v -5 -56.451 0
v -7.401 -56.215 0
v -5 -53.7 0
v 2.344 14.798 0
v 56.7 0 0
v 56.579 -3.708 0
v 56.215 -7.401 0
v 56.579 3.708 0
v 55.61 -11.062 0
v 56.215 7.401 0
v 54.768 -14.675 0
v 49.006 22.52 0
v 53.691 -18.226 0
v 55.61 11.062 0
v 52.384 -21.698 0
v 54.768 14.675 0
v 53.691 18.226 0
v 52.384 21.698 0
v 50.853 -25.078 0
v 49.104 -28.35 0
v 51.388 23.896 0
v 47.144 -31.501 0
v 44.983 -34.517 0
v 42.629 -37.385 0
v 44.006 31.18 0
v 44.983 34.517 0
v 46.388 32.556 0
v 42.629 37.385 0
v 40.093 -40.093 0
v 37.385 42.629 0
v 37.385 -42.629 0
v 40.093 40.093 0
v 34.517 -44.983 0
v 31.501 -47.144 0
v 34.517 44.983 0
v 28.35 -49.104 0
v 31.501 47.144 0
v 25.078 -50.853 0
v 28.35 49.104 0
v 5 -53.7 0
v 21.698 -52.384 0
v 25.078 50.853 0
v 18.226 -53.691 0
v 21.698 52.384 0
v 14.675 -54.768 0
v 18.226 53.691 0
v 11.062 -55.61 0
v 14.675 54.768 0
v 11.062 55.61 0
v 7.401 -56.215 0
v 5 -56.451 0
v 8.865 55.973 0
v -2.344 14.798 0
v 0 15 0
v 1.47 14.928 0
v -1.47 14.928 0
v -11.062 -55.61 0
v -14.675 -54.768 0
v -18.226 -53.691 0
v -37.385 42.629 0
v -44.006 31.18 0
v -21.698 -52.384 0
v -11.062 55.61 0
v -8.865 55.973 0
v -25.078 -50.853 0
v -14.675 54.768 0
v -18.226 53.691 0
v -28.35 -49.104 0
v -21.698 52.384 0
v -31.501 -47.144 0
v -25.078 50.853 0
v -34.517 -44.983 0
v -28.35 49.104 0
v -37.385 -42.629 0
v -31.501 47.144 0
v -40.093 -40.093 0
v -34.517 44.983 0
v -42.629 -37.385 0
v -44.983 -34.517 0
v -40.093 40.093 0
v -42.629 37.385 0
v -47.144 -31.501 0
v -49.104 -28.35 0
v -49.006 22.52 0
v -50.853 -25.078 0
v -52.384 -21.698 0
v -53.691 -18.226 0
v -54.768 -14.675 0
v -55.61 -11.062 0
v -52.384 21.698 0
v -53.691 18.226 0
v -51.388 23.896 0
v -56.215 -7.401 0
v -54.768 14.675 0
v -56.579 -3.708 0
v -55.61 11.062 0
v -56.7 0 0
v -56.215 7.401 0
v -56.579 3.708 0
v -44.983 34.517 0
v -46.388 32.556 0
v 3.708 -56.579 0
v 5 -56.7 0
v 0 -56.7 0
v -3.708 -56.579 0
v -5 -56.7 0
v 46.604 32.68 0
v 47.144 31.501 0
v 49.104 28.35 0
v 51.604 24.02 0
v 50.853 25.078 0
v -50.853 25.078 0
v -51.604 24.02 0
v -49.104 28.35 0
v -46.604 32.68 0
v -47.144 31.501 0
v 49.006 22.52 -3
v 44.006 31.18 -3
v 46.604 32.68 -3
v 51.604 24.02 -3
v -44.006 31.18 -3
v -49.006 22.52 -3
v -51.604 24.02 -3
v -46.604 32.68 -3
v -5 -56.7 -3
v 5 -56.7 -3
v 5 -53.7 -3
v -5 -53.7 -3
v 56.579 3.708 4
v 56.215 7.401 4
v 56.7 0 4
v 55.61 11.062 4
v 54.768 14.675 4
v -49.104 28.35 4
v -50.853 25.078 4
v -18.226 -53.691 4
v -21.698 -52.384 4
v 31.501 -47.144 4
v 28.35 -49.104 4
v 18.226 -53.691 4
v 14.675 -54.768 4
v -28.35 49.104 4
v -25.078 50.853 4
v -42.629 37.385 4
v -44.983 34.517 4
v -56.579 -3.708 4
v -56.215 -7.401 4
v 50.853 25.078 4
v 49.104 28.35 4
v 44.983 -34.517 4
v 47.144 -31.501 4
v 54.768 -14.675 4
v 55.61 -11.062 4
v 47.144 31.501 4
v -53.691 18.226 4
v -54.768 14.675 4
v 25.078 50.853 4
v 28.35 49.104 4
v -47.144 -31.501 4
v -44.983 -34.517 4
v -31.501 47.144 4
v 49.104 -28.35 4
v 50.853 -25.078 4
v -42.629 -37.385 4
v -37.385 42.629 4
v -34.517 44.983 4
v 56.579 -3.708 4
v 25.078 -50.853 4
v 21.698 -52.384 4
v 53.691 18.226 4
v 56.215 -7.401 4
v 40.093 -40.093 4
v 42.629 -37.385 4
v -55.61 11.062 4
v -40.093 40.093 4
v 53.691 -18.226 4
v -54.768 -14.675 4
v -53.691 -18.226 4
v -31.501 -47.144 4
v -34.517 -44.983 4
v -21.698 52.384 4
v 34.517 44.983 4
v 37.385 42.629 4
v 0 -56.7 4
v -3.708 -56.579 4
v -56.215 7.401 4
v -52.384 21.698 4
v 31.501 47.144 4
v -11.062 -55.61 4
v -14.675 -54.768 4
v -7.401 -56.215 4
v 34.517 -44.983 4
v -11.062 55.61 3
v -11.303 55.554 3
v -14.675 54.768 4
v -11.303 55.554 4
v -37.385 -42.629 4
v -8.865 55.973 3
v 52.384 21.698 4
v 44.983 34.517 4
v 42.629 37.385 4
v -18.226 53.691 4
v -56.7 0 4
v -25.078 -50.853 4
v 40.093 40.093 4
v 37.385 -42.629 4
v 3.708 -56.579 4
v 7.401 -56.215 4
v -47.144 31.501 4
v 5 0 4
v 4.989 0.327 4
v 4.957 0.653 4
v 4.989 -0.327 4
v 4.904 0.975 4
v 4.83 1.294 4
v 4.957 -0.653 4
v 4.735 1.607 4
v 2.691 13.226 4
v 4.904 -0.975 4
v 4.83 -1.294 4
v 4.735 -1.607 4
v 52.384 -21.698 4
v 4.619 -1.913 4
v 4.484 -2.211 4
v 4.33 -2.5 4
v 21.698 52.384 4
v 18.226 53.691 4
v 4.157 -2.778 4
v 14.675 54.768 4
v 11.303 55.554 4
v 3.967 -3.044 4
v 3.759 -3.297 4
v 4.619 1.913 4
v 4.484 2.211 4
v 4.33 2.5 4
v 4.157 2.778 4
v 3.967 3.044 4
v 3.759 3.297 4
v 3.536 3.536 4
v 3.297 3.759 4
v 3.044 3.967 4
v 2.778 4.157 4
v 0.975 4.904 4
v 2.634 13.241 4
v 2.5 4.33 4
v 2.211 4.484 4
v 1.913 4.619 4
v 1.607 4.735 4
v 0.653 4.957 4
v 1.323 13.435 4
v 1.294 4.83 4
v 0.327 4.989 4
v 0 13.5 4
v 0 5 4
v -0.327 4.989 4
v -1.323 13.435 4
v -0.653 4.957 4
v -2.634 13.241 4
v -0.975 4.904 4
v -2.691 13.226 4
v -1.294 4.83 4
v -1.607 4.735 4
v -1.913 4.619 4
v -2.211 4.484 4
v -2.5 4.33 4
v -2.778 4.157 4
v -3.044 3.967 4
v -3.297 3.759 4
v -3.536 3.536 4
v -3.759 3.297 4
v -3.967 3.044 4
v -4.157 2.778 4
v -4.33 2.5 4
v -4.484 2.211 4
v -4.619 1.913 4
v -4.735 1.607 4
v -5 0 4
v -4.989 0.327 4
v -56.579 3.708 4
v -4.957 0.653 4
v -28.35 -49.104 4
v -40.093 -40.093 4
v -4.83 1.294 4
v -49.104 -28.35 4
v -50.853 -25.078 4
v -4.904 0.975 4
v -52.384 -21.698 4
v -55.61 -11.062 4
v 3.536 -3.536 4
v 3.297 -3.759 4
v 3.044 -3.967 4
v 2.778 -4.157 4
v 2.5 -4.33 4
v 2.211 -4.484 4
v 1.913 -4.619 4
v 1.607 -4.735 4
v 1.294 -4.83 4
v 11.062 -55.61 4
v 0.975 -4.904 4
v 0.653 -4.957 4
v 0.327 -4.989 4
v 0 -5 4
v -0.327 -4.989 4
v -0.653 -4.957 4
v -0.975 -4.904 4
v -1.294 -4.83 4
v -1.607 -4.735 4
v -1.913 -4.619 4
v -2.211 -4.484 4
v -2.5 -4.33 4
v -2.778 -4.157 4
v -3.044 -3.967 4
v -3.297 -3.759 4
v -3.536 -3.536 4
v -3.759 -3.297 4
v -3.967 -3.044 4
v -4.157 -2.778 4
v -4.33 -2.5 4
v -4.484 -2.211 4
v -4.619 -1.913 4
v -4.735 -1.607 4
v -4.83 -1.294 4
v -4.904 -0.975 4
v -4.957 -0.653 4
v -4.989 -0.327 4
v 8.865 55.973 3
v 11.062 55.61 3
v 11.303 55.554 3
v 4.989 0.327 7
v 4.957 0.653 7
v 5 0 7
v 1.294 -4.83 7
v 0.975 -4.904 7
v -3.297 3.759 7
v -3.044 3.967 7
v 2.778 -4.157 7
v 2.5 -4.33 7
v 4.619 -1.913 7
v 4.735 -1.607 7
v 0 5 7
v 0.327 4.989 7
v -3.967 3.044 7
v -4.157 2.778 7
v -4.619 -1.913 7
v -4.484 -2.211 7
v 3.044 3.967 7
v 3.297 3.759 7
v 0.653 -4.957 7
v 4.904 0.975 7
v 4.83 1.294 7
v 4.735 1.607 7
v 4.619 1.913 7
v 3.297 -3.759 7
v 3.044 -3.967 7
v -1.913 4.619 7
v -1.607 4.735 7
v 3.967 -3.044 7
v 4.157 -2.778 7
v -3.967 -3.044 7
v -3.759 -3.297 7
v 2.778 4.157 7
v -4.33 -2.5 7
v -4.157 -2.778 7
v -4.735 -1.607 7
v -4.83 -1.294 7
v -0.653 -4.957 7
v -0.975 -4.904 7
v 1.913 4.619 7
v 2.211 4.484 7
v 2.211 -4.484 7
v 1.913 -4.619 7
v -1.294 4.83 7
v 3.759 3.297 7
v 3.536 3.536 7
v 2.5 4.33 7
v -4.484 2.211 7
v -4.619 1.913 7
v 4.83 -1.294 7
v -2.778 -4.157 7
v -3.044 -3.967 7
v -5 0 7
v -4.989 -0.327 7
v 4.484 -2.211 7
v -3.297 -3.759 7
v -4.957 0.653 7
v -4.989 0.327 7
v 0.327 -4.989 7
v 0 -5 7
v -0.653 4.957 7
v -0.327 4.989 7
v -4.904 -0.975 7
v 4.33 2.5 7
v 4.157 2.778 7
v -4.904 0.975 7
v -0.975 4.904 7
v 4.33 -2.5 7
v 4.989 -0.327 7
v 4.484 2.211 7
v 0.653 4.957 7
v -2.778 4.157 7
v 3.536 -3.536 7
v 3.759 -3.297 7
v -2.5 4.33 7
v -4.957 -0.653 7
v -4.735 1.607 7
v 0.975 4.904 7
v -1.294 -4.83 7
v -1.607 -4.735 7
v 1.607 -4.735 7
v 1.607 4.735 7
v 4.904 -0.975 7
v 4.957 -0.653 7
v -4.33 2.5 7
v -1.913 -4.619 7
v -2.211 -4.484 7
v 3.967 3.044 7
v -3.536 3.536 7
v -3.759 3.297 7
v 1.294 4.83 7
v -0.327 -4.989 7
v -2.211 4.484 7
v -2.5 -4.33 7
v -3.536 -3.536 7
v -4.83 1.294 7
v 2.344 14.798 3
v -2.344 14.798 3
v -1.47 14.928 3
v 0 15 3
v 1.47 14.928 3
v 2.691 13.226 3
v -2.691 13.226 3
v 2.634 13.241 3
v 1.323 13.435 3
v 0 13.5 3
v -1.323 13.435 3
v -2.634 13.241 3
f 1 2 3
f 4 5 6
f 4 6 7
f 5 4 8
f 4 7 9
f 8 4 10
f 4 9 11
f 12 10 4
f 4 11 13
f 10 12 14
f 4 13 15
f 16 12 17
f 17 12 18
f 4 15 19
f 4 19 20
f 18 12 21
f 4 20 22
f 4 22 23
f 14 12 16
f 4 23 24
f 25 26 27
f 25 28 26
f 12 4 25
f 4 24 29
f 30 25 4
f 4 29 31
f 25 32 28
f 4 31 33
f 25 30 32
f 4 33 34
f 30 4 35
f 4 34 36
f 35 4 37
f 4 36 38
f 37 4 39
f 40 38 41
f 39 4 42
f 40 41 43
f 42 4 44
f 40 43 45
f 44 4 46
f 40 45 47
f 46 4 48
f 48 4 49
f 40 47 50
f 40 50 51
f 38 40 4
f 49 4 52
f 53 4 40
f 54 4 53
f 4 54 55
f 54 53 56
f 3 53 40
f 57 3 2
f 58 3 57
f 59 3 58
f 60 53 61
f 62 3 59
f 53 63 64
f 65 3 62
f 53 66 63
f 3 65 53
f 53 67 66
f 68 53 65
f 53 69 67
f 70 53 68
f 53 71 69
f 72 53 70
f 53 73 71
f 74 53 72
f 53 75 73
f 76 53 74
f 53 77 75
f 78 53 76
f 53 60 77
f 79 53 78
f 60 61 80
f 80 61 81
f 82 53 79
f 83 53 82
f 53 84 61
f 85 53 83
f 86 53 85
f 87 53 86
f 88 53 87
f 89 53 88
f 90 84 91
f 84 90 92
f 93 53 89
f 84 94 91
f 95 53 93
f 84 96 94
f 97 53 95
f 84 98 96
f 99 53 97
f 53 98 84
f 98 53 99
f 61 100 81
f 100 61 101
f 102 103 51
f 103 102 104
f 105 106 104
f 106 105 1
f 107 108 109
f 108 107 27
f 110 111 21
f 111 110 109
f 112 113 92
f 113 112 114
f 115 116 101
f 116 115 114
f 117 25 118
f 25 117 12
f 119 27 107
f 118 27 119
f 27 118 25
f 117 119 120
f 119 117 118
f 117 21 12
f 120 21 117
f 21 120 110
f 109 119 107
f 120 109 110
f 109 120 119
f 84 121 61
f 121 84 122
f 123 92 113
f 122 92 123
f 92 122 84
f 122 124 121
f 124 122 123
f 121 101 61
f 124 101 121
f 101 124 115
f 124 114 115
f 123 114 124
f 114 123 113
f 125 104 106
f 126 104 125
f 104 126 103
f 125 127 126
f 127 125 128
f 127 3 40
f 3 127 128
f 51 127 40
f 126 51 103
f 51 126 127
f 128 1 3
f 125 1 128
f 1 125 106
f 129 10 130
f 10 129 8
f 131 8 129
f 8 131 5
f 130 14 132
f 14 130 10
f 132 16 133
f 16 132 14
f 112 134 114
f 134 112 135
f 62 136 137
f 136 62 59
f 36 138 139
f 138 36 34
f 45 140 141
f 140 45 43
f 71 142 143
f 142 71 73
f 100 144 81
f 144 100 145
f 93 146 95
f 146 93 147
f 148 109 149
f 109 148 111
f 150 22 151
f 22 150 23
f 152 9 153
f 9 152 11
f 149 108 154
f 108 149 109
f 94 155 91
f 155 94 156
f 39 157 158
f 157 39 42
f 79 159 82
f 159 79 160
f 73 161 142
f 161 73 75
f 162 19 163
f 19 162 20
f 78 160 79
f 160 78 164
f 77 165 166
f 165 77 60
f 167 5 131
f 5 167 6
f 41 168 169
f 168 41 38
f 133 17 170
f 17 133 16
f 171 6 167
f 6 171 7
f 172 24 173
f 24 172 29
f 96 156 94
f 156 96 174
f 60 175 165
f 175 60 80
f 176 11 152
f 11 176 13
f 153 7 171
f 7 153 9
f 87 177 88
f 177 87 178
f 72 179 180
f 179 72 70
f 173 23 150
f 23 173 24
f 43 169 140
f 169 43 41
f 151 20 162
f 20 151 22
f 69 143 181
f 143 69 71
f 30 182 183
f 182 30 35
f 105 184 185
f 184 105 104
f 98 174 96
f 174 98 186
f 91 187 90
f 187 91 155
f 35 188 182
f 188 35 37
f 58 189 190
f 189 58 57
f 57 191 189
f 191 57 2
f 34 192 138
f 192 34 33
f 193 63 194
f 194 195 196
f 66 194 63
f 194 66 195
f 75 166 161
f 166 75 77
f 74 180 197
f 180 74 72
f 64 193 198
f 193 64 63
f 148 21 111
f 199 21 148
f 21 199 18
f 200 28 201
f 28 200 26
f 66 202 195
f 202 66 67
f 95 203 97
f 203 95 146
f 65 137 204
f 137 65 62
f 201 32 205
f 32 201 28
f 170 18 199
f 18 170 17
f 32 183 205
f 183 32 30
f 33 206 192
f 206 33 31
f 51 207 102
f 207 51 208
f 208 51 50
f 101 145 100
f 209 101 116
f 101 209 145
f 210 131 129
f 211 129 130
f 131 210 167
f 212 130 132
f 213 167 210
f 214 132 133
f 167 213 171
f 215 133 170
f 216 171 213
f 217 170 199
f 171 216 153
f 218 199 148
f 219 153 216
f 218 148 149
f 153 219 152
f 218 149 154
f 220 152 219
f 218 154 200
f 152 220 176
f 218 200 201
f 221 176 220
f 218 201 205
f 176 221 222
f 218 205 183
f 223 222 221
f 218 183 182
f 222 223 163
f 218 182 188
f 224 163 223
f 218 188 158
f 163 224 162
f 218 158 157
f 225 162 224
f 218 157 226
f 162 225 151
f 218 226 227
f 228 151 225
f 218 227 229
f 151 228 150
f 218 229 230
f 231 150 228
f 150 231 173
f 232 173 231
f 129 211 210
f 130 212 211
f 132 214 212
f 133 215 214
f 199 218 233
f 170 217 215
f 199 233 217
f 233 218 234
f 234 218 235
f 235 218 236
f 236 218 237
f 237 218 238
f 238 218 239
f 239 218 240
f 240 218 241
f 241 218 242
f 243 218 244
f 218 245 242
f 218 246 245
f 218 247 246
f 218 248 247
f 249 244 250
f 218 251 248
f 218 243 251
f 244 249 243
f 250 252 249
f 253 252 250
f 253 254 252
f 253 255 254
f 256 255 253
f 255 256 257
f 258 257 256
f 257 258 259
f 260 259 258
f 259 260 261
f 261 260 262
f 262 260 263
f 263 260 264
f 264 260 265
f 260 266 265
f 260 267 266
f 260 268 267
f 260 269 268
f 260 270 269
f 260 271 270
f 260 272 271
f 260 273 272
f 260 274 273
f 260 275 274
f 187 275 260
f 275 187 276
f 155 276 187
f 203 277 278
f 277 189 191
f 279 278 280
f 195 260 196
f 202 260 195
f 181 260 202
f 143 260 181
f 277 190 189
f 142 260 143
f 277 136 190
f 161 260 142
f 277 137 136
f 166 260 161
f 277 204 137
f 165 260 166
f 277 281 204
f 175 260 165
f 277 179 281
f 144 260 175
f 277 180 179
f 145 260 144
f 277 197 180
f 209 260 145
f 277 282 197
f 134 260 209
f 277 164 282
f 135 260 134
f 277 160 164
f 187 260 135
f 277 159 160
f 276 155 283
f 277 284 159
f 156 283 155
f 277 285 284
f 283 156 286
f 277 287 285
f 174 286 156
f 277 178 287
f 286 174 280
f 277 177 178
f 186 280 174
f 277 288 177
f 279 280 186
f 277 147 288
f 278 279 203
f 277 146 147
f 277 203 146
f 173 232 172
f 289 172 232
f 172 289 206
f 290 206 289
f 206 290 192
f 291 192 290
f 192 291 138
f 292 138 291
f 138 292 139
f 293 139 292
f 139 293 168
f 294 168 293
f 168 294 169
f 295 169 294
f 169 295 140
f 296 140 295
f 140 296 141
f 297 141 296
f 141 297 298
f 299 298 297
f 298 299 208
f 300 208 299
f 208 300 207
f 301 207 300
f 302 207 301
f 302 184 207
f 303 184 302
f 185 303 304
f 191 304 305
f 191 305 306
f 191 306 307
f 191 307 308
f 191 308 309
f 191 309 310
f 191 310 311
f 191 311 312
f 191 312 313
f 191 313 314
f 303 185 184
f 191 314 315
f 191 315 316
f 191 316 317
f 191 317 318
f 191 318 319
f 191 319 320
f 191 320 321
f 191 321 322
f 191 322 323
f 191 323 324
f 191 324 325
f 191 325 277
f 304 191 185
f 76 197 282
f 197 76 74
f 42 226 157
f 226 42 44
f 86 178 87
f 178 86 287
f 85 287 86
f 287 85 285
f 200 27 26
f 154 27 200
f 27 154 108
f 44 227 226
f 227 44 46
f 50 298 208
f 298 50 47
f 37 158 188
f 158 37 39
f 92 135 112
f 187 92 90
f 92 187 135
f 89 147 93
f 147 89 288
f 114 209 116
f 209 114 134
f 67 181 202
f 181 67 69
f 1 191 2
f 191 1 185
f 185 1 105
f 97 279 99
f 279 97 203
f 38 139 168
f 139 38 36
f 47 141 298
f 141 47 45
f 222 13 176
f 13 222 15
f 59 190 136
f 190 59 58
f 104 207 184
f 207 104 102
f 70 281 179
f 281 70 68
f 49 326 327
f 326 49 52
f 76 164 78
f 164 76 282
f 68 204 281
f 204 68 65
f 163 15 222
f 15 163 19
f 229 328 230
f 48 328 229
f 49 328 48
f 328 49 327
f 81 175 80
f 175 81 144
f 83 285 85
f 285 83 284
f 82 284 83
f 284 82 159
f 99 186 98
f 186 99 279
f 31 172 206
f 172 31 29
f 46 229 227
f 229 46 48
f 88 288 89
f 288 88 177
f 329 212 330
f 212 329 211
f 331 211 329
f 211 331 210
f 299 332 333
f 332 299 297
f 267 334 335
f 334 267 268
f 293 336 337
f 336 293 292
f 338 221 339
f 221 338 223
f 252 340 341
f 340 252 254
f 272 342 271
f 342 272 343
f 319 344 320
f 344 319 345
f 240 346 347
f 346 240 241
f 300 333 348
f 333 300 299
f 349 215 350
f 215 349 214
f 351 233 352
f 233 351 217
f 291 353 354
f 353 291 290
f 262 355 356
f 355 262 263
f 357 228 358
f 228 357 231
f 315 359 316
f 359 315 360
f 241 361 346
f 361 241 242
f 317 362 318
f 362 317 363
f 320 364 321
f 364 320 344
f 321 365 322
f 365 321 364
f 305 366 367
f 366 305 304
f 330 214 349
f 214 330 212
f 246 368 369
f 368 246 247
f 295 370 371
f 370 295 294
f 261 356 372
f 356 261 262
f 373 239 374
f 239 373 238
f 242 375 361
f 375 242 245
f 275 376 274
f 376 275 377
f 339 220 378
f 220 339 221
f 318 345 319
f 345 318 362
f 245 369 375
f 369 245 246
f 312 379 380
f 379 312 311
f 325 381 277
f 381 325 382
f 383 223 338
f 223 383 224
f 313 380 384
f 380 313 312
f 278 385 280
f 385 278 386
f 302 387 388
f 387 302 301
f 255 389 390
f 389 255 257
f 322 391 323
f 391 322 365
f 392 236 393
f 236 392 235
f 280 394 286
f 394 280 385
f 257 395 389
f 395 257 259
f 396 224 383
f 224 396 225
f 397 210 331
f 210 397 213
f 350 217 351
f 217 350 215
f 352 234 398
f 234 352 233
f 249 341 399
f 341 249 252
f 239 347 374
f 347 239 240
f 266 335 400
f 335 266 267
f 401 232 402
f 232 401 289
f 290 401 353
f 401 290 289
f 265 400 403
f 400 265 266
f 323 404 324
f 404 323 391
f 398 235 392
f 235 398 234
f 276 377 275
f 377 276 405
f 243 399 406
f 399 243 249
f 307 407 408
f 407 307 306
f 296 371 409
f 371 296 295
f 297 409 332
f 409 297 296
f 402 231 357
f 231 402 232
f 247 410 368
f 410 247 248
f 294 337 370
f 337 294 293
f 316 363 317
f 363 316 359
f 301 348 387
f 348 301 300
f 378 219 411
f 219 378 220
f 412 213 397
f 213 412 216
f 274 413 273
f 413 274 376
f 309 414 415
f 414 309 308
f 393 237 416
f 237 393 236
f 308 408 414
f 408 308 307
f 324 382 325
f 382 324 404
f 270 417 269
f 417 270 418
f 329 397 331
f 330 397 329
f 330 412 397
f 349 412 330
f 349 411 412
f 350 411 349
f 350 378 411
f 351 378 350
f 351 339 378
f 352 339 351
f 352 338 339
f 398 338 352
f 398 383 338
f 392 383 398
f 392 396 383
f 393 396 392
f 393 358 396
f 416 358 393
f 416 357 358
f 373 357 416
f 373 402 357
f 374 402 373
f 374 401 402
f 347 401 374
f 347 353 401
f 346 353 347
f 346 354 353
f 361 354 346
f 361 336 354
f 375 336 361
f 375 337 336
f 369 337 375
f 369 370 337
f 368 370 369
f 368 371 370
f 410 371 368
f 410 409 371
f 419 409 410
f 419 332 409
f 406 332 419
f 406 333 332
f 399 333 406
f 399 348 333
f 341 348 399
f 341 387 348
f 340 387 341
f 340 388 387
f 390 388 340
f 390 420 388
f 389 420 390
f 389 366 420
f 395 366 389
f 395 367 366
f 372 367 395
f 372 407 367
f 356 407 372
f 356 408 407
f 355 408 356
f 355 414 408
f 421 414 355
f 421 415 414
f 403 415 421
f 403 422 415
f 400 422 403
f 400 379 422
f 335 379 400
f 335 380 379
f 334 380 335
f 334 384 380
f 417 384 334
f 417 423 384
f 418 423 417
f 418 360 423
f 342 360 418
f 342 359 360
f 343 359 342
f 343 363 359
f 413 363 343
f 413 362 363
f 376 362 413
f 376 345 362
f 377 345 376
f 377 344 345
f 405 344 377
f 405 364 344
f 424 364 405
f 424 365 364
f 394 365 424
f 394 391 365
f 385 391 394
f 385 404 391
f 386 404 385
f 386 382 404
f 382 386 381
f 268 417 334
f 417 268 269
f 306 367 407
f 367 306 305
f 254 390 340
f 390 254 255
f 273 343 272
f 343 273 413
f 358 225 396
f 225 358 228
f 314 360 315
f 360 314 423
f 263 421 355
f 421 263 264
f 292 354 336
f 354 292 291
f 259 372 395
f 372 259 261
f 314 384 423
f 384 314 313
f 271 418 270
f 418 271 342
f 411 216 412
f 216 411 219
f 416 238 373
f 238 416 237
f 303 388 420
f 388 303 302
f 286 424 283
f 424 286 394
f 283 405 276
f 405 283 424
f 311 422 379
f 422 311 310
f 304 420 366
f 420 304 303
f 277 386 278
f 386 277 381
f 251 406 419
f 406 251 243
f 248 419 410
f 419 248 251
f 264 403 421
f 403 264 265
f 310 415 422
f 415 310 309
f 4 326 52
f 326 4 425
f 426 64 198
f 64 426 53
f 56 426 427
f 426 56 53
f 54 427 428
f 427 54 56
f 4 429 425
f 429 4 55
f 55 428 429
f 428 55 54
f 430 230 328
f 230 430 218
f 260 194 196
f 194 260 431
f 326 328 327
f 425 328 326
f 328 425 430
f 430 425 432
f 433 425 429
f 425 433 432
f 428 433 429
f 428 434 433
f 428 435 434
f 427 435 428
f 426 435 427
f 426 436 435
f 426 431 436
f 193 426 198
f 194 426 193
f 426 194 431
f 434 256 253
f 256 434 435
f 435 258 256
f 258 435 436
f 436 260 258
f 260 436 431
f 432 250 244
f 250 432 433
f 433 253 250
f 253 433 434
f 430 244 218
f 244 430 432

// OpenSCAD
// file: lib_v2.scad
// ============================================================================
// Shared geometry helpers for the v2 print set.   include <lib_v2.scad>;
// ============================================================================

// Wedge prism, centred on +X, spanning +/- ang/2, rising from z = 0.
module sector_prism(r, ang, h, seg = 64) {
    steps = max(4, ceil(ang / 2.5));   // ~2.5 deg chords, independent of ang
    linear_extrude(height = h)
        polygon(concat(
            [[0, 0]],
            [for (i = [0 : steps])
                let (a = -ang / 2 + ang * i / steps) [r * cos(a), r * sin(a)]]
        ));
}

// Annular sector prism, centred on +X, rising from z = 0.
module ring_sector(r_in, r_out, ang, h, seg = 64) {
    difference() {
        sector_prism(r_out, ang, h, seg);
        translate([0, 0, -0.05]) cylinder(h = h + 0.1, r = r_in, $fn = seg);
    }
}

module tube(od, id, h) {
    difference() {
        cylinder(h = h, d = od);
        translate([0, 0, -0.05]) cylinder(h = h + 0.1, d = id);
    }
}

// Inward ledge with a 45 deg self-supporting underside. Top face at z_top.
module chamfered_ledge(r_wall, w, z_top) {
    rotate_extrude(convexity = 4)
        polygon([[r_wall - w, z_top],
                 [r_wall,     z_top],
                 [r_wall,     z_top - w]]);
}

// Thin slab used as a hull station for the chute trough.
module station_slab(y, z, w, t = 0.6) {
    translate([-w / 2, y - t / 2, z]) cube([w, t, 0.6]);
}
// file: parameters_v2.scad
// ============================================================================
// Automated Pill Dispenser — v2 "carousel-only rotation" architecture
// Shared parametric dimensions.   include <parameters_v2.scad>;
//
// Coordinate convention: z = 0 is the table / underside of the drum.
// +Y is the FRONT of the unit (chute, catch tray, camera side).
// Every part module is authored in ASSEMBLY coordinates; each part file
// applies its own print-orientation transform for STL export.
// ============================================================================

// ---------------------------------------------------------------- print / fit
layer_h        = 0.2;
nozzle_d       = 0.4;
wall           = 3.0;   // drum wall thickness
fit_slip       = 0.35;  // sliding fit (rotating / removable parts)
fit_press      = 0.10;  // press fit
m3_pilot_d     = 2.55;  // self-tapping M3 into PLA
m3_free_d      = 3.35;
m2_pilot_d     = 1.65;  // servo tab screws
m2_free_d      = 2.30;

// ---------------------------------------------------------------- drum (A)
h_od           = 120.0;
h_id           = h_od - 2 * wall;          // 114.0
h_ri           = h_id / 2;                 // 57.0
h_top_z        = 86.0;                     // top rim height

// ---------------------------------------------------------------- fixed plate (B)
plate_t        = 4.0;
plate_z        = 52.0;                     // plate UNDERSIDE
plate_top      = plate_z + plate_t;        // 56.0
plate_dia      = h_id - 0.6;               // 113.4  (0.3 gap per side)
plate_r        = plate_dia / 2;

ledge_w        = 3.0;                      // inward width of the support ledge
key_n          = 3;                        // anti-rotation keys
key_arc_w      = 10.0;                     // key width (chord, mm)
key_h          = 3.0;                      // key depth below the plate
key_angles     = [30, 150, 270];

// The one and only opening in the fixed plate. Opens right out to the rim so
// no pill can ever ride around on a closed outer ledge.
// Width is set by the leak rule below, not by taste.
open_deg       = 18.0;
open_r_in      = 15.0;
open_deg_ctr   = 90.0;                     // centred on +Y (front)

// Centre pilot: a post stands up from the plate and the carousel hub drops
// onto it. The post carries the carousel's weight, so the servo shaft only
// ever sees torque, and both halves print with no overhangs.
pilot_d        = 10.0;
pilot_engage   = 2.4;

// ---------------------------------------------------------------- carousel (C)
car_n          = 6;                        // compartments
car_od         = h_id - 1.4;               // 112.6 -> 0.7 mm pill-proof wall gap
car_r          = car_od / 2;
car_floor_t    = 2.4;
car_div_t      = 2.4;
car_div_h      = 24.0;                     // divider height ABOVE the floor
car_hub_od     = 28.0;
car_gap        = 0.6;                      // running gap, carousel floor -> plate
car_z          = plate_top + car_gap;      // 56.6 floor underside
car_top        = car_z + car_floor_t + car_div_h;

// One drop hole per compartment. THE LEAK RULE: the solid floor band between
// two holes (pitch - car_hole_deg) must be WIDER than the plate opening, or the
// parked carousel leaves part of the opening uncovered and its neighbours
// dribble pills into the chute. 60 - 30 = 30 deg of band over an 18 deg
// opening leaves +/- 6 deg of servo parking error before anything leaks.
car_hole_deg   = 30.0;
car_hole_r_in  = 15.5;
car_hole_r_out = car_r + 1.0;              // breaches the rim: nothing rides past

// Because the hole is narrower than the compartment, each floor flange is
// ramped so tablets roll into the hole instead of parking on a flat ledge.
ramp_phi       = 22.0;
ramp_max_h     = 6.0;

pilot_post_h   = car_gap + pilot_engage;   // 3.0, stands on the plate
pilot_bore_d   = pilot_d + fit_slip;       // 10.35 journal in the hub underside

// Round MG90S horn, screwed splines-up into the hub top. The servo shaft just
// plugs down into it, so the carousel still lifts straight out for refilling.
horn_disc_d    = 20.4;
horn_disc_h    = 4.2;
horn_hole_r    = 7.5;
horn_screw_n   = 4;
horn_boss_d    = 8.5;                      // spline boss / screw-head relief
horn_boss_depth= 8.0;

// ---------------------------------------------------------------- servo (MG90S)
servo_l        = 22.8;
servo_w        = 12.2;
servo_case_h   = 22.5;
servo_tab_span = 32.2;
servo_tab_t    = 2.5;
servo_shaft_in = 5.9;   // shaft axis, measured in from the flange-side case end
servo_nose_h   = 6.0;   // flange plane -> top of case
servo_shaft_h  = 4.7;   // shaft protrusion above the case

// ---------------------------------------------------------------- servo bridge (E)
bridge_t       = 4.0;
bridge_z       = h_top_z;                  // sits on the rim
bridge_ear_n   = 4;
bridge_ear_w   = 16.0;
boss_out       = 5.0;                      // external screw boss, radial depth
boss_h         = 14.0;                     // boss height below the rim
boss_angles    = [45, 135, 225, 315];

// ---------------------------------------------------------------- drop chute (D)
chute_wall     = 2.4;
chute_win_w    = 40.0 + 2 * chute_wall + 0.8;   // 45.6 wall window width
chute_win_z0   = 16.0;                          // window bottom
chute_win_z1   = 38.0;                          // window top (45 deg gable above)

// Trough stations: [ y, floor z, inside width, side-wall top z ].
// Inside the drum the side walls run right up to the plate underside so a
// tablet cannot bounce sideways into the electronics bay. The internal floor
// falls at 38 deg; the external run is the 45 deg section from the sketch.
chute_stations = [
    [15.0, 52.0, 20.0, 52.2],
    [50.0, 24.7, 48.0, 52.0],
    [57.0, 19.2, 40.0, 34.0],
    [70.0,  6.2, 40.0, 26.2],
];

// ---------------------------------------------------------------- catch tray (F)
tray_y0        = 68.0;                     // rear wall, just under the chute lip
tray_l         = 60.0;                     // outward (Y) length
tray_w         = 74.0;
tray_floor     = 2.0;
tray_h         = 14.0;
tray_rear_h    = 8.0;                      // low rear wall, clears the chute lip

// ---------------------------------------------------------------- base cover (G)
base_t         = 3.0;
base_z         = -base_t;                  // cover bottom = the table plane
post_d         = 9.0;
post_h         = 16.0;
post_r         = h_ri - post_d / 2 + 0.8;  // overlaps the wall so it fuses
post_angles    = [70, 190, 310];
cable_w        = 12.0;
cable_h        = 6.0;
// main file
// ============================================================================
// v2 PART B — fixed plate with exactly one opening
//
// This part never moves. Three keys drop into notches in the drum ledge, so
// carousel drag cannot spin it (the failure seen on the v1 build, where the
// plate turned instead of the carousel). The opening runs all the way out to
// the rim: a closed outer ledge would let pills hugging the drum wall ride
// past the drop point forever.
// ============================================================================

include <parameters_v2.scad>;
include <lib_v2.scad>;

$fn = 96;

module fixed_plate_v2() {
    translate([0, 0, plate_z])
    difference() {
        union() {
            cylinder(h = plate_t, d = plate_dia);

            // Anti-rotation keys, hanging below the rim into the ledge notches.
            for (a = key_angles)
                rotate([0, 0, a])
                    translate([plate_r - ledge_w, -key_arc_w / 2, -key_h])
                        cube([ledge_w, key_arc_w, key_h]);

            // Centre pilot post — the carousel's only bearing surface.
            translate([0, 0, plate_t - 0.01])
                cylinder(h = pilot_post_h + 0.01, d = pilot_d);
        }

        // The one opening.
        rotate([0, 0, open_deg_ctr])
            translate([0, 0, -0.1])
                ring_sector(open_r_in, plate_r + 2, open_deg, plate_t + 0.2);

        // Lead-in relief on the top face so a tablet cannot be pinched between
        // a carousel divider and the opening edge.
        rotate([0, 0, open_deg_ctr])
            translate([0, 0, plate_t - 1.0])
                ring_sector(open_r_in - 1.5, plate_r + 2, open_deg + 5, 1.2);

    }
}

// Print orientation: flat on the bed, pilot post and keys up. No supports.
translate([0, 0, -plate_z]) fixed_plate_v2();

echo(str("B2 plate: dia ", plate_dia, " x ", plate_t, " mm, opening ", open_deg, " deg"));
